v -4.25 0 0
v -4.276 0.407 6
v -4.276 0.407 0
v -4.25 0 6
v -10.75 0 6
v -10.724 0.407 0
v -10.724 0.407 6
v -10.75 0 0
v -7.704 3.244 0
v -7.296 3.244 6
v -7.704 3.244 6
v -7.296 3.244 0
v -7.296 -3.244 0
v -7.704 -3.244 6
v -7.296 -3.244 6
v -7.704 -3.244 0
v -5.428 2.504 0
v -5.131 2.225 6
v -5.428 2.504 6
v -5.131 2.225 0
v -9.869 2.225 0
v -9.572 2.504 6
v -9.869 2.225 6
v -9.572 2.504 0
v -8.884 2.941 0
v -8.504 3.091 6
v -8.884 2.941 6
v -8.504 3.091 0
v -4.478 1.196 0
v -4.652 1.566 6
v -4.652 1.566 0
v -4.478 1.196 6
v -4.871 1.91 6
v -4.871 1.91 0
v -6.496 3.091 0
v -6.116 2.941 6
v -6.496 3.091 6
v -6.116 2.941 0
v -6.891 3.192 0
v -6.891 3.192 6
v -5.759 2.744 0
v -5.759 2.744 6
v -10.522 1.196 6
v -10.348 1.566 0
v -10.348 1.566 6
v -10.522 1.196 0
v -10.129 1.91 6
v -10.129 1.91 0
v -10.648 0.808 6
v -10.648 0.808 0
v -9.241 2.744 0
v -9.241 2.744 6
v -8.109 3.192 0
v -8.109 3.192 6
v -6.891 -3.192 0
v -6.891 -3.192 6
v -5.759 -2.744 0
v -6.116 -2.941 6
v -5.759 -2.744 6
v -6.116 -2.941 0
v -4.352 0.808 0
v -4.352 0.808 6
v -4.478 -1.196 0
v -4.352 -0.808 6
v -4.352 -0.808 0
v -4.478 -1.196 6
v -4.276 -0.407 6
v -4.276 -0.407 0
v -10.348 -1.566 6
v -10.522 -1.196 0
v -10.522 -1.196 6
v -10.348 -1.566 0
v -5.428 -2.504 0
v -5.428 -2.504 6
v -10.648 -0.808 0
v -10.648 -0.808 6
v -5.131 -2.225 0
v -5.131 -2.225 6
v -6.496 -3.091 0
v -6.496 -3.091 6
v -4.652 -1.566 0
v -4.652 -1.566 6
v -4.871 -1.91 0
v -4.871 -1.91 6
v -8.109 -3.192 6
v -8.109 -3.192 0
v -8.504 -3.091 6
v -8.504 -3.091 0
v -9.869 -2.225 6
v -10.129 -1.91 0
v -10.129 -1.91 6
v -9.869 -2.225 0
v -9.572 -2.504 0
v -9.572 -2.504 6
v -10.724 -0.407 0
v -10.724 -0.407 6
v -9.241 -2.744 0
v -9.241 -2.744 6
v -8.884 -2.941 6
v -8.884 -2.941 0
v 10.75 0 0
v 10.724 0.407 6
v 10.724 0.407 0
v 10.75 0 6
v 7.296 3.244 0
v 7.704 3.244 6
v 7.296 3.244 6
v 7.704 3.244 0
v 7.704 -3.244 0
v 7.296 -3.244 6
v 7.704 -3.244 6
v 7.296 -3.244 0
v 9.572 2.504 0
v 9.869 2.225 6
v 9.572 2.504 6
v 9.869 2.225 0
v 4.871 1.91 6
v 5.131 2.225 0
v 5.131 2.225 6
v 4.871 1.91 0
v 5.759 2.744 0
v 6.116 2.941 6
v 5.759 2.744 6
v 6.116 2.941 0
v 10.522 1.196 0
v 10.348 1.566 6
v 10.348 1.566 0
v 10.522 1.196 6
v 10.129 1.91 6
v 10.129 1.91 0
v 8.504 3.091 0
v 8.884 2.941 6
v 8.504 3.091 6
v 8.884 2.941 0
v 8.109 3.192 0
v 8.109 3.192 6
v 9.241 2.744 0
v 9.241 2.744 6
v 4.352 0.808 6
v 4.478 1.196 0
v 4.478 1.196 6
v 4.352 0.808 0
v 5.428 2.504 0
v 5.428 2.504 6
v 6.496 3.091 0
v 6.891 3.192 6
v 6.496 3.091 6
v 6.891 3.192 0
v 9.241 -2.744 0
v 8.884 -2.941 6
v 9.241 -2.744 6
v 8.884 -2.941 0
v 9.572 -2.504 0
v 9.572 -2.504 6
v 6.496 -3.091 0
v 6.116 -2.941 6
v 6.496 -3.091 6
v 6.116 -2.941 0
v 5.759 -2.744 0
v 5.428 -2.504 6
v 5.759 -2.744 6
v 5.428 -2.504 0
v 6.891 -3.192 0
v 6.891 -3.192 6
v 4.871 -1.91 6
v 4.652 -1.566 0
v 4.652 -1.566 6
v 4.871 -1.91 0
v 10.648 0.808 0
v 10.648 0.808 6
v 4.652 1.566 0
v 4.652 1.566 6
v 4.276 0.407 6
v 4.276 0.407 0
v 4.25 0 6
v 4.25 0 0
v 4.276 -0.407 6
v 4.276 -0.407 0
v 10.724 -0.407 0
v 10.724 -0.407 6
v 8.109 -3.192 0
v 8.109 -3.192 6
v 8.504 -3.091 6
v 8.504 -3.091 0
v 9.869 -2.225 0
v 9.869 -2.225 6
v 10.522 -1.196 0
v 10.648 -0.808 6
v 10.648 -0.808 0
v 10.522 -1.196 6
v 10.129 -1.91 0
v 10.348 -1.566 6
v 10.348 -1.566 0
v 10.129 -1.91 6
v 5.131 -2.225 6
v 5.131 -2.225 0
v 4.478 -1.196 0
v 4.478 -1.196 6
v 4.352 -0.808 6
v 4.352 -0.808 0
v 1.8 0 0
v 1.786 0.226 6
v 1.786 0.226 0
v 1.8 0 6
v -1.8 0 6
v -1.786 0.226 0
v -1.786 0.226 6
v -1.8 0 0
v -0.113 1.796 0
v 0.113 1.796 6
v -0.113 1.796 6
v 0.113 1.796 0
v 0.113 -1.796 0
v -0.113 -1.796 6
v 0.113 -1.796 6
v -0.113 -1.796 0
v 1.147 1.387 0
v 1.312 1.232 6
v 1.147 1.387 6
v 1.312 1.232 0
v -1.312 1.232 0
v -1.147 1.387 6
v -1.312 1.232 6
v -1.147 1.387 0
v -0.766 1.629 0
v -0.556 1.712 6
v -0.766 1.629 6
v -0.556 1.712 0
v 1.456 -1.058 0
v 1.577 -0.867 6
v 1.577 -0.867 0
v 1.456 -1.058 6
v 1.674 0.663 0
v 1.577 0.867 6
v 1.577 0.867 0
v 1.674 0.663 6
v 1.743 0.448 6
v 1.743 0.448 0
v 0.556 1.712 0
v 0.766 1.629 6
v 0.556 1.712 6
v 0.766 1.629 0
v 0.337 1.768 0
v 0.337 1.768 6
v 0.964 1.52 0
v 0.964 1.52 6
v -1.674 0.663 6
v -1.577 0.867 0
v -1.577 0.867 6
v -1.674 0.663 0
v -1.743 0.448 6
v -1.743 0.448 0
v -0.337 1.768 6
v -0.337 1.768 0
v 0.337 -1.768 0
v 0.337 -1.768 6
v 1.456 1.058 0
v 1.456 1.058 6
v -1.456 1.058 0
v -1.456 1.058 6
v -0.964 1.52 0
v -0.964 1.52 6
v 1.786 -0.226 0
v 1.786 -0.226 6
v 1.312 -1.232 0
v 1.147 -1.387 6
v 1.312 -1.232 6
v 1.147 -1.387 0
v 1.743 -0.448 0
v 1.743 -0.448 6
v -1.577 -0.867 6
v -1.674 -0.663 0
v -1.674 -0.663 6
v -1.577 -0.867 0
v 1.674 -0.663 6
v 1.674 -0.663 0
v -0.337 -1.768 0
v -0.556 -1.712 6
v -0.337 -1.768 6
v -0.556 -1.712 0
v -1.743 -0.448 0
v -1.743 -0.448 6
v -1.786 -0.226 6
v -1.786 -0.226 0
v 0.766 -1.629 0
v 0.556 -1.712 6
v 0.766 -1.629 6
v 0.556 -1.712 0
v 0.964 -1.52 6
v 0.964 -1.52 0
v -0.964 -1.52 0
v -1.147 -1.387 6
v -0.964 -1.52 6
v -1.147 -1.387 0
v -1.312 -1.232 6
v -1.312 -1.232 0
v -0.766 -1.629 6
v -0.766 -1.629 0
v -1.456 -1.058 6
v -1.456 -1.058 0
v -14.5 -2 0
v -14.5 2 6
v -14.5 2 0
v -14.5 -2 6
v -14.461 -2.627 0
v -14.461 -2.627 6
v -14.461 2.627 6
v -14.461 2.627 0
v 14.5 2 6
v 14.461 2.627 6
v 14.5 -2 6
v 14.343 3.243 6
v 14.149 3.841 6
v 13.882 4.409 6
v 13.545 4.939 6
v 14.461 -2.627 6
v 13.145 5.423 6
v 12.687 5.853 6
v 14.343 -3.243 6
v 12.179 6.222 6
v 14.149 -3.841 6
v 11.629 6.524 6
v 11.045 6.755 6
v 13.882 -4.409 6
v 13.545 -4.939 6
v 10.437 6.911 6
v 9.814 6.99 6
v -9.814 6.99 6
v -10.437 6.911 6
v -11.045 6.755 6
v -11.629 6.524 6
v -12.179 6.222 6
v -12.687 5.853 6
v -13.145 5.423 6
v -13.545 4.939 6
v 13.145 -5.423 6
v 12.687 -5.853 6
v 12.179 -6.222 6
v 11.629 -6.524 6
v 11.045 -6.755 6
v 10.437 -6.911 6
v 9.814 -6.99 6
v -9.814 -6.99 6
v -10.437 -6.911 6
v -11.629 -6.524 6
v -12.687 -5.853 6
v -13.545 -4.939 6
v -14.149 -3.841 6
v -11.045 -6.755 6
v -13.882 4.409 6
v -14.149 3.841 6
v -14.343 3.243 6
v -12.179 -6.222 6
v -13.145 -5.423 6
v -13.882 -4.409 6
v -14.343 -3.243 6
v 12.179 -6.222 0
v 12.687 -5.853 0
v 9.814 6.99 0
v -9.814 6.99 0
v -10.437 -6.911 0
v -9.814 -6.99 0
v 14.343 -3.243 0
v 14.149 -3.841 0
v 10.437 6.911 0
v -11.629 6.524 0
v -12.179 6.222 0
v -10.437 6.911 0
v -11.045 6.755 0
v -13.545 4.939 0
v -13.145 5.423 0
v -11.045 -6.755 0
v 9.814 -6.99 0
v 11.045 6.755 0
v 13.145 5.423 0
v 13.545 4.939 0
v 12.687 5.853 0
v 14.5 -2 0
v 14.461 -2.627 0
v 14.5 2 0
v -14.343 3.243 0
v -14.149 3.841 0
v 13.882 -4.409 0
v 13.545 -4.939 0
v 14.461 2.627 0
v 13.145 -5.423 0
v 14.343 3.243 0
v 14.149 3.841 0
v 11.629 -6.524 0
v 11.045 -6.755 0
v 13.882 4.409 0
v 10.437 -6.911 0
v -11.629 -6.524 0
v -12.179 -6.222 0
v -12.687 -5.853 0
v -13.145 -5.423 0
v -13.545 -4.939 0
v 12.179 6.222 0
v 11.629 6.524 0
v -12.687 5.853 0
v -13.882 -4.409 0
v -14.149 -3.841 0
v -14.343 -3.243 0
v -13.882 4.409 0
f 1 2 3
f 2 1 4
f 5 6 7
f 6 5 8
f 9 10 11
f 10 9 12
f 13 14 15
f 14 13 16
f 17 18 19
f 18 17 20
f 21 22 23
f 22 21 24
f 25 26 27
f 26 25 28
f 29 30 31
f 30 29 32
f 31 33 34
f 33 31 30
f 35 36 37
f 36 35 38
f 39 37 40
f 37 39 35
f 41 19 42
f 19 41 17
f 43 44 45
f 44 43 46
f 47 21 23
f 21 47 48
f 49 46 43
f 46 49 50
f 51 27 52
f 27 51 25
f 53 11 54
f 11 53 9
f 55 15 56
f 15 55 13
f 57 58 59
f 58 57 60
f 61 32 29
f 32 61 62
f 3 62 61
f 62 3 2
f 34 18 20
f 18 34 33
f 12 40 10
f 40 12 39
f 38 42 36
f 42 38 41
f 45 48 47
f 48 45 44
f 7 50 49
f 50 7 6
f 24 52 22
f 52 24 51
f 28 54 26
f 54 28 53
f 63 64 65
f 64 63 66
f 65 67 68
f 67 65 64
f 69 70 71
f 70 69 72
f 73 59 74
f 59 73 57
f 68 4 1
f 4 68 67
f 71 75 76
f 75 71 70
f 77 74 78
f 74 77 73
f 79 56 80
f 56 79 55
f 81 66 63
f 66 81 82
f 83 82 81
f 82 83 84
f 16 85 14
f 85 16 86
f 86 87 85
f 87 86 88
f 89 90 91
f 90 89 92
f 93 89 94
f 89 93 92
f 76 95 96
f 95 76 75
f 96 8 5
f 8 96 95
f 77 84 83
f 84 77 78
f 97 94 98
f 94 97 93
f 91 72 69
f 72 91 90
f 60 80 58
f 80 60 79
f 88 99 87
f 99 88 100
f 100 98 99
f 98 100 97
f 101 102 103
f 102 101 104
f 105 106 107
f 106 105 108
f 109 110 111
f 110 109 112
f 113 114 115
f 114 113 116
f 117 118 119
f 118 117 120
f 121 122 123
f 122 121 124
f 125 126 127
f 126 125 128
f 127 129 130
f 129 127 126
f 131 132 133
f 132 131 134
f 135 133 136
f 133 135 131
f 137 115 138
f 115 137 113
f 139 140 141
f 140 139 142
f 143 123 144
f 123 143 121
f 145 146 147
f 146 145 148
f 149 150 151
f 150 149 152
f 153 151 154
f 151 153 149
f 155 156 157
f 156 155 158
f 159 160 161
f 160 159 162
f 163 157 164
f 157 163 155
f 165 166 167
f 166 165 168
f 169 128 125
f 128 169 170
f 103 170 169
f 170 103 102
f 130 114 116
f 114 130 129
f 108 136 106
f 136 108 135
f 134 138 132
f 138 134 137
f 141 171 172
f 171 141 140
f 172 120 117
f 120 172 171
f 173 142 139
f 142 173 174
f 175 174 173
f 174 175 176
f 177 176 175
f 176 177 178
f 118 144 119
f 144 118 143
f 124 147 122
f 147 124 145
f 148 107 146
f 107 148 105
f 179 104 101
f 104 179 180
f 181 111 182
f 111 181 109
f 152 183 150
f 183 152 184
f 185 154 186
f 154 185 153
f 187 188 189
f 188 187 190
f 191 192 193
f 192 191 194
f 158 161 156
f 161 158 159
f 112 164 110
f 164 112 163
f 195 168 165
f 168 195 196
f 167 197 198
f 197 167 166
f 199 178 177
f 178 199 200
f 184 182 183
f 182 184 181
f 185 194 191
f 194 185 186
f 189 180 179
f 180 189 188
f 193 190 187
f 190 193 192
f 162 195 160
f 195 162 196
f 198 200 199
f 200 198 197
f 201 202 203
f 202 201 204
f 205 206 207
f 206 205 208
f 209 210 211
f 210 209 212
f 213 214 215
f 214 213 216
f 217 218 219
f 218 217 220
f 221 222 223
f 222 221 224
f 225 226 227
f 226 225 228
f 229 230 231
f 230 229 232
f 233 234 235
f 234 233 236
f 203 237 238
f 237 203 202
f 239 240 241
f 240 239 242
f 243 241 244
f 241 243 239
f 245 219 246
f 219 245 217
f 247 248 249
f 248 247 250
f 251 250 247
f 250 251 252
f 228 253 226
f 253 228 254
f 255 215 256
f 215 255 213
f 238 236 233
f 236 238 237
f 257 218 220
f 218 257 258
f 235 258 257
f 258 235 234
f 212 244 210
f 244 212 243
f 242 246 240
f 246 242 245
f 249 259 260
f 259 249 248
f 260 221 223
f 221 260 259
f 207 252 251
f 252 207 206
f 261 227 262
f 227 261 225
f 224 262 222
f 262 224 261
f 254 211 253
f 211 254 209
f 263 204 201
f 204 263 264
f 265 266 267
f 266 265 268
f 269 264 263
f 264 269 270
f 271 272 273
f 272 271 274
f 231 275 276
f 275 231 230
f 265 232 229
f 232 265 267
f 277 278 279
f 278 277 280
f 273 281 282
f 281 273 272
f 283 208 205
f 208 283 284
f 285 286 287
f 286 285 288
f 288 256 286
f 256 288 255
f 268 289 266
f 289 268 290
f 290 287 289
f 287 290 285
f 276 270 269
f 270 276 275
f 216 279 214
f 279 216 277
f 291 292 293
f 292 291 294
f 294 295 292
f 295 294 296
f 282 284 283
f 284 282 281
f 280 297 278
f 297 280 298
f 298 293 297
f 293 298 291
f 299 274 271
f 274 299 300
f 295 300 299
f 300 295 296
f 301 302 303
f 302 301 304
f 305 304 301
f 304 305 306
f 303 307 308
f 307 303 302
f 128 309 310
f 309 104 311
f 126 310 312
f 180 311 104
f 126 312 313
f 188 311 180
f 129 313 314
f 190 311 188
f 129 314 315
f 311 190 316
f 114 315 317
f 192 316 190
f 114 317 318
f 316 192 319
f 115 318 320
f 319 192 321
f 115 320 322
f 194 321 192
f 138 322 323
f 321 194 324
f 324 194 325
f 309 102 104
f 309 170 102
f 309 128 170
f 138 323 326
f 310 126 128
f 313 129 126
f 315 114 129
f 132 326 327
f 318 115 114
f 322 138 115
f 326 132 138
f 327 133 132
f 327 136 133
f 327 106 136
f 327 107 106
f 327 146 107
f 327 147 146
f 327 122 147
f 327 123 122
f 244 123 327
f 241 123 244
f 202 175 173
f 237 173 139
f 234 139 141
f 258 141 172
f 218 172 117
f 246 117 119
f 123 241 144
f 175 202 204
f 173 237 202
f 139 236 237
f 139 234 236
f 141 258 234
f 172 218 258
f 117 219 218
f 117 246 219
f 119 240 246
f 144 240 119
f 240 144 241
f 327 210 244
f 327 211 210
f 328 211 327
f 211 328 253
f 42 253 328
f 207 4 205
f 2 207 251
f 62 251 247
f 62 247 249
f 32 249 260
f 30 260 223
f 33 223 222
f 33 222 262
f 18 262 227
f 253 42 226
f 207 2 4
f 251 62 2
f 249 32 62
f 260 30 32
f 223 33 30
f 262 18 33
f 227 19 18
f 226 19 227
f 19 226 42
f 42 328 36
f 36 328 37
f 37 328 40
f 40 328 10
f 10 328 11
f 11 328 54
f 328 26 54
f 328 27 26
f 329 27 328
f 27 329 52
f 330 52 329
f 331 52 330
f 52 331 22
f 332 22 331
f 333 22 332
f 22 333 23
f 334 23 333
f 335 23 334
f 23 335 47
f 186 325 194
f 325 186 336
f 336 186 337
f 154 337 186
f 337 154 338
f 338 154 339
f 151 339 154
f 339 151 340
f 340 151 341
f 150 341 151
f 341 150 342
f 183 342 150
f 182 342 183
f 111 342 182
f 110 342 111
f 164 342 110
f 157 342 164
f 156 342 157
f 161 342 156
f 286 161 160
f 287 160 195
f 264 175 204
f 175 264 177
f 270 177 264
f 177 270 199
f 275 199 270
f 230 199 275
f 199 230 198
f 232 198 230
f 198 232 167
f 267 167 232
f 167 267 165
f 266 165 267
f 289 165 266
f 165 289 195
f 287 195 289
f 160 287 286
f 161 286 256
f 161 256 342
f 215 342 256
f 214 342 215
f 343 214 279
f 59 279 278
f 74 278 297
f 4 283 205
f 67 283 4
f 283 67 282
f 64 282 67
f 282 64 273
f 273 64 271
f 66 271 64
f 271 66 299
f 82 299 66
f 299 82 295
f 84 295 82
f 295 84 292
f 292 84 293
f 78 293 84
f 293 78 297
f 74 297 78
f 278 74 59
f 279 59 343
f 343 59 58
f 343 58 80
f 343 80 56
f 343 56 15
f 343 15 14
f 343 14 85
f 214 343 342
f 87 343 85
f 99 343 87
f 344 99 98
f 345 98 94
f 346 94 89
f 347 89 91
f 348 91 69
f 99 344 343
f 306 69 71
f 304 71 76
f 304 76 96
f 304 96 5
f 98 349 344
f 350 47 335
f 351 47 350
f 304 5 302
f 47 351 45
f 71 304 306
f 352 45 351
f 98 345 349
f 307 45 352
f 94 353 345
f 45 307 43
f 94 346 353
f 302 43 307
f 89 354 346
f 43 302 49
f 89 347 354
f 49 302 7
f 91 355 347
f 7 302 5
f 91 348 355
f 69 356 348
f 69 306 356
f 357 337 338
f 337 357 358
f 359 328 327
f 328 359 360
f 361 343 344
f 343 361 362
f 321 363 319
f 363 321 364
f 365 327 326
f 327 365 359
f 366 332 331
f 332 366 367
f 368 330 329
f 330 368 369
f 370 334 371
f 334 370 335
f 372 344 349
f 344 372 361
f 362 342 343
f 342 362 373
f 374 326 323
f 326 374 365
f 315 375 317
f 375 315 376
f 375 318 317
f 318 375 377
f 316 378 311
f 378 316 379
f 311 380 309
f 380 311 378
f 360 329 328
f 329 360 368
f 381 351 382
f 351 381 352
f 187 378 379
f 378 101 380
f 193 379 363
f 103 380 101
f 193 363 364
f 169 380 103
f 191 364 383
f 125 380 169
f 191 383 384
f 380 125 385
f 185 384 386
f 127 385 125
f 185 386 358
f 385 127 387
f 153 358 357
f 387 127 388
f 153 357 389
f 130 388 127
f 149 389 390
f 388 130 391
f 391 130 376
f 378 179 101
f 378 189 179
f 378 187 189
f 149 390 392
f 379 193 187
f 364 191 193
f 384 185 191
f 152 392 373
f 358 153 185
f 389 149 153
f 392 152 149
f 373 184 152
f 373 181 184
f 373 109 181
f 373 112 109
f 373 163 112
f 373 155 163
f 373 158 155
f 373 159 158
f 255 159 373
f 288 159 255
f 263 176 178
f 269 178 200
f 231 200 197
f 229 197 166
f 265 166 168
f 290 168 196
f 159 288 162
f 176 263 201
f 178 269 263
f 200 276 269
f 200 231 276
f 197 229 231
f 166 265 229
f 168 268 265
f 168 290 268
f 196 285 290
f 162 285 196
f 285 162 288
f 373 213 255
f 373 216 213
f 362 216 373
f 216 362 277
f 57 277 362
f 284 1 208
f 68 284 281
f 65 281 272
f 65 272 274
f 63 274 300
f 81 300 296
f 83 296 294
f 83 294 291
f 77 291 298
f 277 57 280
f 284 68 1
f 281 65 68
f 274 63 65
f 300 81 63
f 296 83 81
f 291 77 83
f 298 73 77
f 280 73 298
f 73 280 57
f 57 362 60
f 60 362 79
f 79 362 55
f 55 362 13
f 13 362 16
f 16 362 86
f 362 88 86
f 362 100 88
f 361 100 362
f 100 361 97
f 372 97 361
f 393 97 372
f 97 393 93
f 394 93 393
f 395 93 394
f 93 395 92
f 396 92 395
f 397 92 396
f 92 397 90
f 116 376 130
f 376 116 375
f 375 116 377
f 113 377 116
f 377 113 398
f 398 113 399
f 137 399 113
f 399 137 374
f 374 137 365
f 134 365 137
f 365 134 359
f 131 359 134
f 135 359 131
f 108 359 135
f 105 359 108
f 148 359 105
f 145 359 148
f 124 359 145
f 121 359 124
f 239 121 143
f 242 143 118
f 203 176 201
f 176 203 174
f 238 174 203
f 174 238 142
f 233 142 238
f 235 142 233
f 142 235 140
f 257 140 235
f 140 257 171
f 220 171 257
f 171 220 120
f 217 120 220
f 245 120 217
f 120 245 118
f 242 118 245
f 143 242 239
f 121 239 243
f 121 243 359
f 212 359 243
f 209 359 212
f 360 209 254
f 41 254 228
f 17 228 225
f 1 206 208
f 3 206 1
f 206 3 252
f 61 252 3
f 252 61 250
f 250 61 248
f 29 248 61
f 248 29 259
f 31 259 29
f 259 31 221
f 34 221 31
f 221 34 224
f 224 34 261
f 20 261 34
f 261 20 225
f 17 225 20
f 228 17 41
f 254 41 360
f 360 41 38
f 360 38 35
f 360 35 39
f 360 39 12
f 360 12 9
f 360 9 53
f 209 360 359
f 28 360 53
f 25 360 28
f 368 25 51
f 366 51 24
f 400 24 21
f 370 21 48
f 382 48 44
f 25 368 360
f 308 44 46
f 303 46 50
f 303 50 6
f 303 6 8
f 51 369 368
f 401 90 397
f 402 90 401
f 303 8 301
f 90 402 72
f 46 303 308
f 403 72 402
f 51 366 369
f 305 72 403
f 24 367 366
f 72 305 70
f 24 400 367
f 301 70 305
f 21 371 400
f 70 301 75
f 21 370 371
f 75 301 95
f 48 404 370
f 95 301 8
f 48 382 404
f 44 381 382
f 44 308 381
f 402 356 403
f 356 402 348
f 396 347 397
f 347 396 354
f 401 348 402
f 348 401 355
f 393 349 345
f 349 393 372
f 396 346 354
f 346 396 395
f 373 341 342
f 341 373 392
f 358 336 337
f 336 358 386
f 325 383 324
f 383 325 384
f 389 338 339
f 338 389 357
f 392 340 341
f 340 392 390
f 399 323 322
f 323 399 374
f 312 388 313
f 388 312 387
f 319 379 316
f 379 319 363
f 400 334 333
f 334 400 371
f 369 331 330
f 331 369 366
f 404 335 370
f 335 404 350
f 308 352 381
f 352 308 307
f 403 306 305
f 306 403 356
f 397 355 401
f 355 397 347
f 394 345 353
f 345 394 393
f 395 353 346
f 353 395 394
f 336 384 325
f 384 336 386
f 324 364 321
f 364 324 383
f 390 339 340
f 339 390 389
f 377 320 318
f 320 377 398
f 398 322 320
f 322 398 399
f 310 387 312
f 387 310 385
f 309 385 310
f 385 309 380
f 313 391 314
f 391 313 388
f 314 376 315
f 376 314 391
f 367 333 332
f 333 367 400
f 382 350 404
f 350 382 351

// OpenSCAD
$fn = 50;


difference() {
	union() {
		translate(v = [0, 0, 0]) {
			rotate(a = [0, 0, 0]) {
				hull() {
					translate(v = [-9.5000000000, 2.0000000000, 0]) {
						rotate(a = [0, 0, 0]) {
							translate(v = [0, 0, 0]) {
								rotate(a = [0, 0, 0]) {
									cylinder(h = 6, r = 5);
								}
							}
						}
					}
					translate(v = [9.5000000000, 2.0000000000, 0]) {
						rotate(a = [0, 0, 0]) {
							translate(v = [0, 0, 0]) {
								rotate(a = [0, 0, 0]) {
									cylinder(h = 6, r = 5);
								}
							}
						}
					}
					translate(v = [-9.5000000000, -2.0000000000, 0]) {
						rotate(a = [0, 0, 0]) {
							translate(v = [0, 0, 0]) {
								rotate(a = [0, 0, 0]) {
									cylinder(h = 6, r = 5);
								}
							}
						}
					}
					translate(v = [9.5000000000, -2.0000000000, 0]) {
						rotate(a = [0, 0, 0]) {
							translate(v = [0, 0, 0]) {
								rotate(a = [0, 0, 0]) {
									cylinder(h = 6, r = 5);
								}
							}
						}
					}
				}
			}
		}
	}
	union() {
		translate(v = [-7.5000000000, 0.0000000000, 0]) {
			rotate(a = [0, 0, 0]) {
				translate(v = [0, 0, -50]) {
					rotate(a = [0, 0, 0]) {
						cylinder(h = 100, r = 3.2500000000);
					}
				}
			}
		}
		translate(v = [7.5000000000, 0.0000000000, 0]) {
			rotate(a = [0, 0, 0]) {
				translate(v = [0, 0, -50]) {
					rotate(a = [0, 0, 0]) {
						cylinder(h = 100, r = 3.2500000000);
					}
				}
			}
		}
		translate(v = [-7.5000000000, 0.0000000000, 0]) {
			rotate(a = [0, 0, 0]) {
				translate(v = [0, 0, -50]) {
					rotate(a = [0, 0, 0]) {
						cylinder(h = 100, r = 1.8000000000);
					}
				}
			}
		}
		translate(v = [0.0000000000, 0.0000000000, 0]) {
			rotate(a = [0, 0, 0]) {
				translate(v = [0, 0, -50]) {
					rotate(a = [0, 0, 0]) {
						cylinder(h = 100, r = 1.8000000000);
					}
				}
			}
		}
		translate(v = [7.5000000000, 0.0000000000, 0]) {
			rotate(a = [0, 0, 0]) {
				translate(v = [0, 0, -50]) {
					rotate(a = [0, 0, 0]) {
						cylinder(h = 100, r = 1.8000000000);
					}
				}
			}
		}
	}
}
